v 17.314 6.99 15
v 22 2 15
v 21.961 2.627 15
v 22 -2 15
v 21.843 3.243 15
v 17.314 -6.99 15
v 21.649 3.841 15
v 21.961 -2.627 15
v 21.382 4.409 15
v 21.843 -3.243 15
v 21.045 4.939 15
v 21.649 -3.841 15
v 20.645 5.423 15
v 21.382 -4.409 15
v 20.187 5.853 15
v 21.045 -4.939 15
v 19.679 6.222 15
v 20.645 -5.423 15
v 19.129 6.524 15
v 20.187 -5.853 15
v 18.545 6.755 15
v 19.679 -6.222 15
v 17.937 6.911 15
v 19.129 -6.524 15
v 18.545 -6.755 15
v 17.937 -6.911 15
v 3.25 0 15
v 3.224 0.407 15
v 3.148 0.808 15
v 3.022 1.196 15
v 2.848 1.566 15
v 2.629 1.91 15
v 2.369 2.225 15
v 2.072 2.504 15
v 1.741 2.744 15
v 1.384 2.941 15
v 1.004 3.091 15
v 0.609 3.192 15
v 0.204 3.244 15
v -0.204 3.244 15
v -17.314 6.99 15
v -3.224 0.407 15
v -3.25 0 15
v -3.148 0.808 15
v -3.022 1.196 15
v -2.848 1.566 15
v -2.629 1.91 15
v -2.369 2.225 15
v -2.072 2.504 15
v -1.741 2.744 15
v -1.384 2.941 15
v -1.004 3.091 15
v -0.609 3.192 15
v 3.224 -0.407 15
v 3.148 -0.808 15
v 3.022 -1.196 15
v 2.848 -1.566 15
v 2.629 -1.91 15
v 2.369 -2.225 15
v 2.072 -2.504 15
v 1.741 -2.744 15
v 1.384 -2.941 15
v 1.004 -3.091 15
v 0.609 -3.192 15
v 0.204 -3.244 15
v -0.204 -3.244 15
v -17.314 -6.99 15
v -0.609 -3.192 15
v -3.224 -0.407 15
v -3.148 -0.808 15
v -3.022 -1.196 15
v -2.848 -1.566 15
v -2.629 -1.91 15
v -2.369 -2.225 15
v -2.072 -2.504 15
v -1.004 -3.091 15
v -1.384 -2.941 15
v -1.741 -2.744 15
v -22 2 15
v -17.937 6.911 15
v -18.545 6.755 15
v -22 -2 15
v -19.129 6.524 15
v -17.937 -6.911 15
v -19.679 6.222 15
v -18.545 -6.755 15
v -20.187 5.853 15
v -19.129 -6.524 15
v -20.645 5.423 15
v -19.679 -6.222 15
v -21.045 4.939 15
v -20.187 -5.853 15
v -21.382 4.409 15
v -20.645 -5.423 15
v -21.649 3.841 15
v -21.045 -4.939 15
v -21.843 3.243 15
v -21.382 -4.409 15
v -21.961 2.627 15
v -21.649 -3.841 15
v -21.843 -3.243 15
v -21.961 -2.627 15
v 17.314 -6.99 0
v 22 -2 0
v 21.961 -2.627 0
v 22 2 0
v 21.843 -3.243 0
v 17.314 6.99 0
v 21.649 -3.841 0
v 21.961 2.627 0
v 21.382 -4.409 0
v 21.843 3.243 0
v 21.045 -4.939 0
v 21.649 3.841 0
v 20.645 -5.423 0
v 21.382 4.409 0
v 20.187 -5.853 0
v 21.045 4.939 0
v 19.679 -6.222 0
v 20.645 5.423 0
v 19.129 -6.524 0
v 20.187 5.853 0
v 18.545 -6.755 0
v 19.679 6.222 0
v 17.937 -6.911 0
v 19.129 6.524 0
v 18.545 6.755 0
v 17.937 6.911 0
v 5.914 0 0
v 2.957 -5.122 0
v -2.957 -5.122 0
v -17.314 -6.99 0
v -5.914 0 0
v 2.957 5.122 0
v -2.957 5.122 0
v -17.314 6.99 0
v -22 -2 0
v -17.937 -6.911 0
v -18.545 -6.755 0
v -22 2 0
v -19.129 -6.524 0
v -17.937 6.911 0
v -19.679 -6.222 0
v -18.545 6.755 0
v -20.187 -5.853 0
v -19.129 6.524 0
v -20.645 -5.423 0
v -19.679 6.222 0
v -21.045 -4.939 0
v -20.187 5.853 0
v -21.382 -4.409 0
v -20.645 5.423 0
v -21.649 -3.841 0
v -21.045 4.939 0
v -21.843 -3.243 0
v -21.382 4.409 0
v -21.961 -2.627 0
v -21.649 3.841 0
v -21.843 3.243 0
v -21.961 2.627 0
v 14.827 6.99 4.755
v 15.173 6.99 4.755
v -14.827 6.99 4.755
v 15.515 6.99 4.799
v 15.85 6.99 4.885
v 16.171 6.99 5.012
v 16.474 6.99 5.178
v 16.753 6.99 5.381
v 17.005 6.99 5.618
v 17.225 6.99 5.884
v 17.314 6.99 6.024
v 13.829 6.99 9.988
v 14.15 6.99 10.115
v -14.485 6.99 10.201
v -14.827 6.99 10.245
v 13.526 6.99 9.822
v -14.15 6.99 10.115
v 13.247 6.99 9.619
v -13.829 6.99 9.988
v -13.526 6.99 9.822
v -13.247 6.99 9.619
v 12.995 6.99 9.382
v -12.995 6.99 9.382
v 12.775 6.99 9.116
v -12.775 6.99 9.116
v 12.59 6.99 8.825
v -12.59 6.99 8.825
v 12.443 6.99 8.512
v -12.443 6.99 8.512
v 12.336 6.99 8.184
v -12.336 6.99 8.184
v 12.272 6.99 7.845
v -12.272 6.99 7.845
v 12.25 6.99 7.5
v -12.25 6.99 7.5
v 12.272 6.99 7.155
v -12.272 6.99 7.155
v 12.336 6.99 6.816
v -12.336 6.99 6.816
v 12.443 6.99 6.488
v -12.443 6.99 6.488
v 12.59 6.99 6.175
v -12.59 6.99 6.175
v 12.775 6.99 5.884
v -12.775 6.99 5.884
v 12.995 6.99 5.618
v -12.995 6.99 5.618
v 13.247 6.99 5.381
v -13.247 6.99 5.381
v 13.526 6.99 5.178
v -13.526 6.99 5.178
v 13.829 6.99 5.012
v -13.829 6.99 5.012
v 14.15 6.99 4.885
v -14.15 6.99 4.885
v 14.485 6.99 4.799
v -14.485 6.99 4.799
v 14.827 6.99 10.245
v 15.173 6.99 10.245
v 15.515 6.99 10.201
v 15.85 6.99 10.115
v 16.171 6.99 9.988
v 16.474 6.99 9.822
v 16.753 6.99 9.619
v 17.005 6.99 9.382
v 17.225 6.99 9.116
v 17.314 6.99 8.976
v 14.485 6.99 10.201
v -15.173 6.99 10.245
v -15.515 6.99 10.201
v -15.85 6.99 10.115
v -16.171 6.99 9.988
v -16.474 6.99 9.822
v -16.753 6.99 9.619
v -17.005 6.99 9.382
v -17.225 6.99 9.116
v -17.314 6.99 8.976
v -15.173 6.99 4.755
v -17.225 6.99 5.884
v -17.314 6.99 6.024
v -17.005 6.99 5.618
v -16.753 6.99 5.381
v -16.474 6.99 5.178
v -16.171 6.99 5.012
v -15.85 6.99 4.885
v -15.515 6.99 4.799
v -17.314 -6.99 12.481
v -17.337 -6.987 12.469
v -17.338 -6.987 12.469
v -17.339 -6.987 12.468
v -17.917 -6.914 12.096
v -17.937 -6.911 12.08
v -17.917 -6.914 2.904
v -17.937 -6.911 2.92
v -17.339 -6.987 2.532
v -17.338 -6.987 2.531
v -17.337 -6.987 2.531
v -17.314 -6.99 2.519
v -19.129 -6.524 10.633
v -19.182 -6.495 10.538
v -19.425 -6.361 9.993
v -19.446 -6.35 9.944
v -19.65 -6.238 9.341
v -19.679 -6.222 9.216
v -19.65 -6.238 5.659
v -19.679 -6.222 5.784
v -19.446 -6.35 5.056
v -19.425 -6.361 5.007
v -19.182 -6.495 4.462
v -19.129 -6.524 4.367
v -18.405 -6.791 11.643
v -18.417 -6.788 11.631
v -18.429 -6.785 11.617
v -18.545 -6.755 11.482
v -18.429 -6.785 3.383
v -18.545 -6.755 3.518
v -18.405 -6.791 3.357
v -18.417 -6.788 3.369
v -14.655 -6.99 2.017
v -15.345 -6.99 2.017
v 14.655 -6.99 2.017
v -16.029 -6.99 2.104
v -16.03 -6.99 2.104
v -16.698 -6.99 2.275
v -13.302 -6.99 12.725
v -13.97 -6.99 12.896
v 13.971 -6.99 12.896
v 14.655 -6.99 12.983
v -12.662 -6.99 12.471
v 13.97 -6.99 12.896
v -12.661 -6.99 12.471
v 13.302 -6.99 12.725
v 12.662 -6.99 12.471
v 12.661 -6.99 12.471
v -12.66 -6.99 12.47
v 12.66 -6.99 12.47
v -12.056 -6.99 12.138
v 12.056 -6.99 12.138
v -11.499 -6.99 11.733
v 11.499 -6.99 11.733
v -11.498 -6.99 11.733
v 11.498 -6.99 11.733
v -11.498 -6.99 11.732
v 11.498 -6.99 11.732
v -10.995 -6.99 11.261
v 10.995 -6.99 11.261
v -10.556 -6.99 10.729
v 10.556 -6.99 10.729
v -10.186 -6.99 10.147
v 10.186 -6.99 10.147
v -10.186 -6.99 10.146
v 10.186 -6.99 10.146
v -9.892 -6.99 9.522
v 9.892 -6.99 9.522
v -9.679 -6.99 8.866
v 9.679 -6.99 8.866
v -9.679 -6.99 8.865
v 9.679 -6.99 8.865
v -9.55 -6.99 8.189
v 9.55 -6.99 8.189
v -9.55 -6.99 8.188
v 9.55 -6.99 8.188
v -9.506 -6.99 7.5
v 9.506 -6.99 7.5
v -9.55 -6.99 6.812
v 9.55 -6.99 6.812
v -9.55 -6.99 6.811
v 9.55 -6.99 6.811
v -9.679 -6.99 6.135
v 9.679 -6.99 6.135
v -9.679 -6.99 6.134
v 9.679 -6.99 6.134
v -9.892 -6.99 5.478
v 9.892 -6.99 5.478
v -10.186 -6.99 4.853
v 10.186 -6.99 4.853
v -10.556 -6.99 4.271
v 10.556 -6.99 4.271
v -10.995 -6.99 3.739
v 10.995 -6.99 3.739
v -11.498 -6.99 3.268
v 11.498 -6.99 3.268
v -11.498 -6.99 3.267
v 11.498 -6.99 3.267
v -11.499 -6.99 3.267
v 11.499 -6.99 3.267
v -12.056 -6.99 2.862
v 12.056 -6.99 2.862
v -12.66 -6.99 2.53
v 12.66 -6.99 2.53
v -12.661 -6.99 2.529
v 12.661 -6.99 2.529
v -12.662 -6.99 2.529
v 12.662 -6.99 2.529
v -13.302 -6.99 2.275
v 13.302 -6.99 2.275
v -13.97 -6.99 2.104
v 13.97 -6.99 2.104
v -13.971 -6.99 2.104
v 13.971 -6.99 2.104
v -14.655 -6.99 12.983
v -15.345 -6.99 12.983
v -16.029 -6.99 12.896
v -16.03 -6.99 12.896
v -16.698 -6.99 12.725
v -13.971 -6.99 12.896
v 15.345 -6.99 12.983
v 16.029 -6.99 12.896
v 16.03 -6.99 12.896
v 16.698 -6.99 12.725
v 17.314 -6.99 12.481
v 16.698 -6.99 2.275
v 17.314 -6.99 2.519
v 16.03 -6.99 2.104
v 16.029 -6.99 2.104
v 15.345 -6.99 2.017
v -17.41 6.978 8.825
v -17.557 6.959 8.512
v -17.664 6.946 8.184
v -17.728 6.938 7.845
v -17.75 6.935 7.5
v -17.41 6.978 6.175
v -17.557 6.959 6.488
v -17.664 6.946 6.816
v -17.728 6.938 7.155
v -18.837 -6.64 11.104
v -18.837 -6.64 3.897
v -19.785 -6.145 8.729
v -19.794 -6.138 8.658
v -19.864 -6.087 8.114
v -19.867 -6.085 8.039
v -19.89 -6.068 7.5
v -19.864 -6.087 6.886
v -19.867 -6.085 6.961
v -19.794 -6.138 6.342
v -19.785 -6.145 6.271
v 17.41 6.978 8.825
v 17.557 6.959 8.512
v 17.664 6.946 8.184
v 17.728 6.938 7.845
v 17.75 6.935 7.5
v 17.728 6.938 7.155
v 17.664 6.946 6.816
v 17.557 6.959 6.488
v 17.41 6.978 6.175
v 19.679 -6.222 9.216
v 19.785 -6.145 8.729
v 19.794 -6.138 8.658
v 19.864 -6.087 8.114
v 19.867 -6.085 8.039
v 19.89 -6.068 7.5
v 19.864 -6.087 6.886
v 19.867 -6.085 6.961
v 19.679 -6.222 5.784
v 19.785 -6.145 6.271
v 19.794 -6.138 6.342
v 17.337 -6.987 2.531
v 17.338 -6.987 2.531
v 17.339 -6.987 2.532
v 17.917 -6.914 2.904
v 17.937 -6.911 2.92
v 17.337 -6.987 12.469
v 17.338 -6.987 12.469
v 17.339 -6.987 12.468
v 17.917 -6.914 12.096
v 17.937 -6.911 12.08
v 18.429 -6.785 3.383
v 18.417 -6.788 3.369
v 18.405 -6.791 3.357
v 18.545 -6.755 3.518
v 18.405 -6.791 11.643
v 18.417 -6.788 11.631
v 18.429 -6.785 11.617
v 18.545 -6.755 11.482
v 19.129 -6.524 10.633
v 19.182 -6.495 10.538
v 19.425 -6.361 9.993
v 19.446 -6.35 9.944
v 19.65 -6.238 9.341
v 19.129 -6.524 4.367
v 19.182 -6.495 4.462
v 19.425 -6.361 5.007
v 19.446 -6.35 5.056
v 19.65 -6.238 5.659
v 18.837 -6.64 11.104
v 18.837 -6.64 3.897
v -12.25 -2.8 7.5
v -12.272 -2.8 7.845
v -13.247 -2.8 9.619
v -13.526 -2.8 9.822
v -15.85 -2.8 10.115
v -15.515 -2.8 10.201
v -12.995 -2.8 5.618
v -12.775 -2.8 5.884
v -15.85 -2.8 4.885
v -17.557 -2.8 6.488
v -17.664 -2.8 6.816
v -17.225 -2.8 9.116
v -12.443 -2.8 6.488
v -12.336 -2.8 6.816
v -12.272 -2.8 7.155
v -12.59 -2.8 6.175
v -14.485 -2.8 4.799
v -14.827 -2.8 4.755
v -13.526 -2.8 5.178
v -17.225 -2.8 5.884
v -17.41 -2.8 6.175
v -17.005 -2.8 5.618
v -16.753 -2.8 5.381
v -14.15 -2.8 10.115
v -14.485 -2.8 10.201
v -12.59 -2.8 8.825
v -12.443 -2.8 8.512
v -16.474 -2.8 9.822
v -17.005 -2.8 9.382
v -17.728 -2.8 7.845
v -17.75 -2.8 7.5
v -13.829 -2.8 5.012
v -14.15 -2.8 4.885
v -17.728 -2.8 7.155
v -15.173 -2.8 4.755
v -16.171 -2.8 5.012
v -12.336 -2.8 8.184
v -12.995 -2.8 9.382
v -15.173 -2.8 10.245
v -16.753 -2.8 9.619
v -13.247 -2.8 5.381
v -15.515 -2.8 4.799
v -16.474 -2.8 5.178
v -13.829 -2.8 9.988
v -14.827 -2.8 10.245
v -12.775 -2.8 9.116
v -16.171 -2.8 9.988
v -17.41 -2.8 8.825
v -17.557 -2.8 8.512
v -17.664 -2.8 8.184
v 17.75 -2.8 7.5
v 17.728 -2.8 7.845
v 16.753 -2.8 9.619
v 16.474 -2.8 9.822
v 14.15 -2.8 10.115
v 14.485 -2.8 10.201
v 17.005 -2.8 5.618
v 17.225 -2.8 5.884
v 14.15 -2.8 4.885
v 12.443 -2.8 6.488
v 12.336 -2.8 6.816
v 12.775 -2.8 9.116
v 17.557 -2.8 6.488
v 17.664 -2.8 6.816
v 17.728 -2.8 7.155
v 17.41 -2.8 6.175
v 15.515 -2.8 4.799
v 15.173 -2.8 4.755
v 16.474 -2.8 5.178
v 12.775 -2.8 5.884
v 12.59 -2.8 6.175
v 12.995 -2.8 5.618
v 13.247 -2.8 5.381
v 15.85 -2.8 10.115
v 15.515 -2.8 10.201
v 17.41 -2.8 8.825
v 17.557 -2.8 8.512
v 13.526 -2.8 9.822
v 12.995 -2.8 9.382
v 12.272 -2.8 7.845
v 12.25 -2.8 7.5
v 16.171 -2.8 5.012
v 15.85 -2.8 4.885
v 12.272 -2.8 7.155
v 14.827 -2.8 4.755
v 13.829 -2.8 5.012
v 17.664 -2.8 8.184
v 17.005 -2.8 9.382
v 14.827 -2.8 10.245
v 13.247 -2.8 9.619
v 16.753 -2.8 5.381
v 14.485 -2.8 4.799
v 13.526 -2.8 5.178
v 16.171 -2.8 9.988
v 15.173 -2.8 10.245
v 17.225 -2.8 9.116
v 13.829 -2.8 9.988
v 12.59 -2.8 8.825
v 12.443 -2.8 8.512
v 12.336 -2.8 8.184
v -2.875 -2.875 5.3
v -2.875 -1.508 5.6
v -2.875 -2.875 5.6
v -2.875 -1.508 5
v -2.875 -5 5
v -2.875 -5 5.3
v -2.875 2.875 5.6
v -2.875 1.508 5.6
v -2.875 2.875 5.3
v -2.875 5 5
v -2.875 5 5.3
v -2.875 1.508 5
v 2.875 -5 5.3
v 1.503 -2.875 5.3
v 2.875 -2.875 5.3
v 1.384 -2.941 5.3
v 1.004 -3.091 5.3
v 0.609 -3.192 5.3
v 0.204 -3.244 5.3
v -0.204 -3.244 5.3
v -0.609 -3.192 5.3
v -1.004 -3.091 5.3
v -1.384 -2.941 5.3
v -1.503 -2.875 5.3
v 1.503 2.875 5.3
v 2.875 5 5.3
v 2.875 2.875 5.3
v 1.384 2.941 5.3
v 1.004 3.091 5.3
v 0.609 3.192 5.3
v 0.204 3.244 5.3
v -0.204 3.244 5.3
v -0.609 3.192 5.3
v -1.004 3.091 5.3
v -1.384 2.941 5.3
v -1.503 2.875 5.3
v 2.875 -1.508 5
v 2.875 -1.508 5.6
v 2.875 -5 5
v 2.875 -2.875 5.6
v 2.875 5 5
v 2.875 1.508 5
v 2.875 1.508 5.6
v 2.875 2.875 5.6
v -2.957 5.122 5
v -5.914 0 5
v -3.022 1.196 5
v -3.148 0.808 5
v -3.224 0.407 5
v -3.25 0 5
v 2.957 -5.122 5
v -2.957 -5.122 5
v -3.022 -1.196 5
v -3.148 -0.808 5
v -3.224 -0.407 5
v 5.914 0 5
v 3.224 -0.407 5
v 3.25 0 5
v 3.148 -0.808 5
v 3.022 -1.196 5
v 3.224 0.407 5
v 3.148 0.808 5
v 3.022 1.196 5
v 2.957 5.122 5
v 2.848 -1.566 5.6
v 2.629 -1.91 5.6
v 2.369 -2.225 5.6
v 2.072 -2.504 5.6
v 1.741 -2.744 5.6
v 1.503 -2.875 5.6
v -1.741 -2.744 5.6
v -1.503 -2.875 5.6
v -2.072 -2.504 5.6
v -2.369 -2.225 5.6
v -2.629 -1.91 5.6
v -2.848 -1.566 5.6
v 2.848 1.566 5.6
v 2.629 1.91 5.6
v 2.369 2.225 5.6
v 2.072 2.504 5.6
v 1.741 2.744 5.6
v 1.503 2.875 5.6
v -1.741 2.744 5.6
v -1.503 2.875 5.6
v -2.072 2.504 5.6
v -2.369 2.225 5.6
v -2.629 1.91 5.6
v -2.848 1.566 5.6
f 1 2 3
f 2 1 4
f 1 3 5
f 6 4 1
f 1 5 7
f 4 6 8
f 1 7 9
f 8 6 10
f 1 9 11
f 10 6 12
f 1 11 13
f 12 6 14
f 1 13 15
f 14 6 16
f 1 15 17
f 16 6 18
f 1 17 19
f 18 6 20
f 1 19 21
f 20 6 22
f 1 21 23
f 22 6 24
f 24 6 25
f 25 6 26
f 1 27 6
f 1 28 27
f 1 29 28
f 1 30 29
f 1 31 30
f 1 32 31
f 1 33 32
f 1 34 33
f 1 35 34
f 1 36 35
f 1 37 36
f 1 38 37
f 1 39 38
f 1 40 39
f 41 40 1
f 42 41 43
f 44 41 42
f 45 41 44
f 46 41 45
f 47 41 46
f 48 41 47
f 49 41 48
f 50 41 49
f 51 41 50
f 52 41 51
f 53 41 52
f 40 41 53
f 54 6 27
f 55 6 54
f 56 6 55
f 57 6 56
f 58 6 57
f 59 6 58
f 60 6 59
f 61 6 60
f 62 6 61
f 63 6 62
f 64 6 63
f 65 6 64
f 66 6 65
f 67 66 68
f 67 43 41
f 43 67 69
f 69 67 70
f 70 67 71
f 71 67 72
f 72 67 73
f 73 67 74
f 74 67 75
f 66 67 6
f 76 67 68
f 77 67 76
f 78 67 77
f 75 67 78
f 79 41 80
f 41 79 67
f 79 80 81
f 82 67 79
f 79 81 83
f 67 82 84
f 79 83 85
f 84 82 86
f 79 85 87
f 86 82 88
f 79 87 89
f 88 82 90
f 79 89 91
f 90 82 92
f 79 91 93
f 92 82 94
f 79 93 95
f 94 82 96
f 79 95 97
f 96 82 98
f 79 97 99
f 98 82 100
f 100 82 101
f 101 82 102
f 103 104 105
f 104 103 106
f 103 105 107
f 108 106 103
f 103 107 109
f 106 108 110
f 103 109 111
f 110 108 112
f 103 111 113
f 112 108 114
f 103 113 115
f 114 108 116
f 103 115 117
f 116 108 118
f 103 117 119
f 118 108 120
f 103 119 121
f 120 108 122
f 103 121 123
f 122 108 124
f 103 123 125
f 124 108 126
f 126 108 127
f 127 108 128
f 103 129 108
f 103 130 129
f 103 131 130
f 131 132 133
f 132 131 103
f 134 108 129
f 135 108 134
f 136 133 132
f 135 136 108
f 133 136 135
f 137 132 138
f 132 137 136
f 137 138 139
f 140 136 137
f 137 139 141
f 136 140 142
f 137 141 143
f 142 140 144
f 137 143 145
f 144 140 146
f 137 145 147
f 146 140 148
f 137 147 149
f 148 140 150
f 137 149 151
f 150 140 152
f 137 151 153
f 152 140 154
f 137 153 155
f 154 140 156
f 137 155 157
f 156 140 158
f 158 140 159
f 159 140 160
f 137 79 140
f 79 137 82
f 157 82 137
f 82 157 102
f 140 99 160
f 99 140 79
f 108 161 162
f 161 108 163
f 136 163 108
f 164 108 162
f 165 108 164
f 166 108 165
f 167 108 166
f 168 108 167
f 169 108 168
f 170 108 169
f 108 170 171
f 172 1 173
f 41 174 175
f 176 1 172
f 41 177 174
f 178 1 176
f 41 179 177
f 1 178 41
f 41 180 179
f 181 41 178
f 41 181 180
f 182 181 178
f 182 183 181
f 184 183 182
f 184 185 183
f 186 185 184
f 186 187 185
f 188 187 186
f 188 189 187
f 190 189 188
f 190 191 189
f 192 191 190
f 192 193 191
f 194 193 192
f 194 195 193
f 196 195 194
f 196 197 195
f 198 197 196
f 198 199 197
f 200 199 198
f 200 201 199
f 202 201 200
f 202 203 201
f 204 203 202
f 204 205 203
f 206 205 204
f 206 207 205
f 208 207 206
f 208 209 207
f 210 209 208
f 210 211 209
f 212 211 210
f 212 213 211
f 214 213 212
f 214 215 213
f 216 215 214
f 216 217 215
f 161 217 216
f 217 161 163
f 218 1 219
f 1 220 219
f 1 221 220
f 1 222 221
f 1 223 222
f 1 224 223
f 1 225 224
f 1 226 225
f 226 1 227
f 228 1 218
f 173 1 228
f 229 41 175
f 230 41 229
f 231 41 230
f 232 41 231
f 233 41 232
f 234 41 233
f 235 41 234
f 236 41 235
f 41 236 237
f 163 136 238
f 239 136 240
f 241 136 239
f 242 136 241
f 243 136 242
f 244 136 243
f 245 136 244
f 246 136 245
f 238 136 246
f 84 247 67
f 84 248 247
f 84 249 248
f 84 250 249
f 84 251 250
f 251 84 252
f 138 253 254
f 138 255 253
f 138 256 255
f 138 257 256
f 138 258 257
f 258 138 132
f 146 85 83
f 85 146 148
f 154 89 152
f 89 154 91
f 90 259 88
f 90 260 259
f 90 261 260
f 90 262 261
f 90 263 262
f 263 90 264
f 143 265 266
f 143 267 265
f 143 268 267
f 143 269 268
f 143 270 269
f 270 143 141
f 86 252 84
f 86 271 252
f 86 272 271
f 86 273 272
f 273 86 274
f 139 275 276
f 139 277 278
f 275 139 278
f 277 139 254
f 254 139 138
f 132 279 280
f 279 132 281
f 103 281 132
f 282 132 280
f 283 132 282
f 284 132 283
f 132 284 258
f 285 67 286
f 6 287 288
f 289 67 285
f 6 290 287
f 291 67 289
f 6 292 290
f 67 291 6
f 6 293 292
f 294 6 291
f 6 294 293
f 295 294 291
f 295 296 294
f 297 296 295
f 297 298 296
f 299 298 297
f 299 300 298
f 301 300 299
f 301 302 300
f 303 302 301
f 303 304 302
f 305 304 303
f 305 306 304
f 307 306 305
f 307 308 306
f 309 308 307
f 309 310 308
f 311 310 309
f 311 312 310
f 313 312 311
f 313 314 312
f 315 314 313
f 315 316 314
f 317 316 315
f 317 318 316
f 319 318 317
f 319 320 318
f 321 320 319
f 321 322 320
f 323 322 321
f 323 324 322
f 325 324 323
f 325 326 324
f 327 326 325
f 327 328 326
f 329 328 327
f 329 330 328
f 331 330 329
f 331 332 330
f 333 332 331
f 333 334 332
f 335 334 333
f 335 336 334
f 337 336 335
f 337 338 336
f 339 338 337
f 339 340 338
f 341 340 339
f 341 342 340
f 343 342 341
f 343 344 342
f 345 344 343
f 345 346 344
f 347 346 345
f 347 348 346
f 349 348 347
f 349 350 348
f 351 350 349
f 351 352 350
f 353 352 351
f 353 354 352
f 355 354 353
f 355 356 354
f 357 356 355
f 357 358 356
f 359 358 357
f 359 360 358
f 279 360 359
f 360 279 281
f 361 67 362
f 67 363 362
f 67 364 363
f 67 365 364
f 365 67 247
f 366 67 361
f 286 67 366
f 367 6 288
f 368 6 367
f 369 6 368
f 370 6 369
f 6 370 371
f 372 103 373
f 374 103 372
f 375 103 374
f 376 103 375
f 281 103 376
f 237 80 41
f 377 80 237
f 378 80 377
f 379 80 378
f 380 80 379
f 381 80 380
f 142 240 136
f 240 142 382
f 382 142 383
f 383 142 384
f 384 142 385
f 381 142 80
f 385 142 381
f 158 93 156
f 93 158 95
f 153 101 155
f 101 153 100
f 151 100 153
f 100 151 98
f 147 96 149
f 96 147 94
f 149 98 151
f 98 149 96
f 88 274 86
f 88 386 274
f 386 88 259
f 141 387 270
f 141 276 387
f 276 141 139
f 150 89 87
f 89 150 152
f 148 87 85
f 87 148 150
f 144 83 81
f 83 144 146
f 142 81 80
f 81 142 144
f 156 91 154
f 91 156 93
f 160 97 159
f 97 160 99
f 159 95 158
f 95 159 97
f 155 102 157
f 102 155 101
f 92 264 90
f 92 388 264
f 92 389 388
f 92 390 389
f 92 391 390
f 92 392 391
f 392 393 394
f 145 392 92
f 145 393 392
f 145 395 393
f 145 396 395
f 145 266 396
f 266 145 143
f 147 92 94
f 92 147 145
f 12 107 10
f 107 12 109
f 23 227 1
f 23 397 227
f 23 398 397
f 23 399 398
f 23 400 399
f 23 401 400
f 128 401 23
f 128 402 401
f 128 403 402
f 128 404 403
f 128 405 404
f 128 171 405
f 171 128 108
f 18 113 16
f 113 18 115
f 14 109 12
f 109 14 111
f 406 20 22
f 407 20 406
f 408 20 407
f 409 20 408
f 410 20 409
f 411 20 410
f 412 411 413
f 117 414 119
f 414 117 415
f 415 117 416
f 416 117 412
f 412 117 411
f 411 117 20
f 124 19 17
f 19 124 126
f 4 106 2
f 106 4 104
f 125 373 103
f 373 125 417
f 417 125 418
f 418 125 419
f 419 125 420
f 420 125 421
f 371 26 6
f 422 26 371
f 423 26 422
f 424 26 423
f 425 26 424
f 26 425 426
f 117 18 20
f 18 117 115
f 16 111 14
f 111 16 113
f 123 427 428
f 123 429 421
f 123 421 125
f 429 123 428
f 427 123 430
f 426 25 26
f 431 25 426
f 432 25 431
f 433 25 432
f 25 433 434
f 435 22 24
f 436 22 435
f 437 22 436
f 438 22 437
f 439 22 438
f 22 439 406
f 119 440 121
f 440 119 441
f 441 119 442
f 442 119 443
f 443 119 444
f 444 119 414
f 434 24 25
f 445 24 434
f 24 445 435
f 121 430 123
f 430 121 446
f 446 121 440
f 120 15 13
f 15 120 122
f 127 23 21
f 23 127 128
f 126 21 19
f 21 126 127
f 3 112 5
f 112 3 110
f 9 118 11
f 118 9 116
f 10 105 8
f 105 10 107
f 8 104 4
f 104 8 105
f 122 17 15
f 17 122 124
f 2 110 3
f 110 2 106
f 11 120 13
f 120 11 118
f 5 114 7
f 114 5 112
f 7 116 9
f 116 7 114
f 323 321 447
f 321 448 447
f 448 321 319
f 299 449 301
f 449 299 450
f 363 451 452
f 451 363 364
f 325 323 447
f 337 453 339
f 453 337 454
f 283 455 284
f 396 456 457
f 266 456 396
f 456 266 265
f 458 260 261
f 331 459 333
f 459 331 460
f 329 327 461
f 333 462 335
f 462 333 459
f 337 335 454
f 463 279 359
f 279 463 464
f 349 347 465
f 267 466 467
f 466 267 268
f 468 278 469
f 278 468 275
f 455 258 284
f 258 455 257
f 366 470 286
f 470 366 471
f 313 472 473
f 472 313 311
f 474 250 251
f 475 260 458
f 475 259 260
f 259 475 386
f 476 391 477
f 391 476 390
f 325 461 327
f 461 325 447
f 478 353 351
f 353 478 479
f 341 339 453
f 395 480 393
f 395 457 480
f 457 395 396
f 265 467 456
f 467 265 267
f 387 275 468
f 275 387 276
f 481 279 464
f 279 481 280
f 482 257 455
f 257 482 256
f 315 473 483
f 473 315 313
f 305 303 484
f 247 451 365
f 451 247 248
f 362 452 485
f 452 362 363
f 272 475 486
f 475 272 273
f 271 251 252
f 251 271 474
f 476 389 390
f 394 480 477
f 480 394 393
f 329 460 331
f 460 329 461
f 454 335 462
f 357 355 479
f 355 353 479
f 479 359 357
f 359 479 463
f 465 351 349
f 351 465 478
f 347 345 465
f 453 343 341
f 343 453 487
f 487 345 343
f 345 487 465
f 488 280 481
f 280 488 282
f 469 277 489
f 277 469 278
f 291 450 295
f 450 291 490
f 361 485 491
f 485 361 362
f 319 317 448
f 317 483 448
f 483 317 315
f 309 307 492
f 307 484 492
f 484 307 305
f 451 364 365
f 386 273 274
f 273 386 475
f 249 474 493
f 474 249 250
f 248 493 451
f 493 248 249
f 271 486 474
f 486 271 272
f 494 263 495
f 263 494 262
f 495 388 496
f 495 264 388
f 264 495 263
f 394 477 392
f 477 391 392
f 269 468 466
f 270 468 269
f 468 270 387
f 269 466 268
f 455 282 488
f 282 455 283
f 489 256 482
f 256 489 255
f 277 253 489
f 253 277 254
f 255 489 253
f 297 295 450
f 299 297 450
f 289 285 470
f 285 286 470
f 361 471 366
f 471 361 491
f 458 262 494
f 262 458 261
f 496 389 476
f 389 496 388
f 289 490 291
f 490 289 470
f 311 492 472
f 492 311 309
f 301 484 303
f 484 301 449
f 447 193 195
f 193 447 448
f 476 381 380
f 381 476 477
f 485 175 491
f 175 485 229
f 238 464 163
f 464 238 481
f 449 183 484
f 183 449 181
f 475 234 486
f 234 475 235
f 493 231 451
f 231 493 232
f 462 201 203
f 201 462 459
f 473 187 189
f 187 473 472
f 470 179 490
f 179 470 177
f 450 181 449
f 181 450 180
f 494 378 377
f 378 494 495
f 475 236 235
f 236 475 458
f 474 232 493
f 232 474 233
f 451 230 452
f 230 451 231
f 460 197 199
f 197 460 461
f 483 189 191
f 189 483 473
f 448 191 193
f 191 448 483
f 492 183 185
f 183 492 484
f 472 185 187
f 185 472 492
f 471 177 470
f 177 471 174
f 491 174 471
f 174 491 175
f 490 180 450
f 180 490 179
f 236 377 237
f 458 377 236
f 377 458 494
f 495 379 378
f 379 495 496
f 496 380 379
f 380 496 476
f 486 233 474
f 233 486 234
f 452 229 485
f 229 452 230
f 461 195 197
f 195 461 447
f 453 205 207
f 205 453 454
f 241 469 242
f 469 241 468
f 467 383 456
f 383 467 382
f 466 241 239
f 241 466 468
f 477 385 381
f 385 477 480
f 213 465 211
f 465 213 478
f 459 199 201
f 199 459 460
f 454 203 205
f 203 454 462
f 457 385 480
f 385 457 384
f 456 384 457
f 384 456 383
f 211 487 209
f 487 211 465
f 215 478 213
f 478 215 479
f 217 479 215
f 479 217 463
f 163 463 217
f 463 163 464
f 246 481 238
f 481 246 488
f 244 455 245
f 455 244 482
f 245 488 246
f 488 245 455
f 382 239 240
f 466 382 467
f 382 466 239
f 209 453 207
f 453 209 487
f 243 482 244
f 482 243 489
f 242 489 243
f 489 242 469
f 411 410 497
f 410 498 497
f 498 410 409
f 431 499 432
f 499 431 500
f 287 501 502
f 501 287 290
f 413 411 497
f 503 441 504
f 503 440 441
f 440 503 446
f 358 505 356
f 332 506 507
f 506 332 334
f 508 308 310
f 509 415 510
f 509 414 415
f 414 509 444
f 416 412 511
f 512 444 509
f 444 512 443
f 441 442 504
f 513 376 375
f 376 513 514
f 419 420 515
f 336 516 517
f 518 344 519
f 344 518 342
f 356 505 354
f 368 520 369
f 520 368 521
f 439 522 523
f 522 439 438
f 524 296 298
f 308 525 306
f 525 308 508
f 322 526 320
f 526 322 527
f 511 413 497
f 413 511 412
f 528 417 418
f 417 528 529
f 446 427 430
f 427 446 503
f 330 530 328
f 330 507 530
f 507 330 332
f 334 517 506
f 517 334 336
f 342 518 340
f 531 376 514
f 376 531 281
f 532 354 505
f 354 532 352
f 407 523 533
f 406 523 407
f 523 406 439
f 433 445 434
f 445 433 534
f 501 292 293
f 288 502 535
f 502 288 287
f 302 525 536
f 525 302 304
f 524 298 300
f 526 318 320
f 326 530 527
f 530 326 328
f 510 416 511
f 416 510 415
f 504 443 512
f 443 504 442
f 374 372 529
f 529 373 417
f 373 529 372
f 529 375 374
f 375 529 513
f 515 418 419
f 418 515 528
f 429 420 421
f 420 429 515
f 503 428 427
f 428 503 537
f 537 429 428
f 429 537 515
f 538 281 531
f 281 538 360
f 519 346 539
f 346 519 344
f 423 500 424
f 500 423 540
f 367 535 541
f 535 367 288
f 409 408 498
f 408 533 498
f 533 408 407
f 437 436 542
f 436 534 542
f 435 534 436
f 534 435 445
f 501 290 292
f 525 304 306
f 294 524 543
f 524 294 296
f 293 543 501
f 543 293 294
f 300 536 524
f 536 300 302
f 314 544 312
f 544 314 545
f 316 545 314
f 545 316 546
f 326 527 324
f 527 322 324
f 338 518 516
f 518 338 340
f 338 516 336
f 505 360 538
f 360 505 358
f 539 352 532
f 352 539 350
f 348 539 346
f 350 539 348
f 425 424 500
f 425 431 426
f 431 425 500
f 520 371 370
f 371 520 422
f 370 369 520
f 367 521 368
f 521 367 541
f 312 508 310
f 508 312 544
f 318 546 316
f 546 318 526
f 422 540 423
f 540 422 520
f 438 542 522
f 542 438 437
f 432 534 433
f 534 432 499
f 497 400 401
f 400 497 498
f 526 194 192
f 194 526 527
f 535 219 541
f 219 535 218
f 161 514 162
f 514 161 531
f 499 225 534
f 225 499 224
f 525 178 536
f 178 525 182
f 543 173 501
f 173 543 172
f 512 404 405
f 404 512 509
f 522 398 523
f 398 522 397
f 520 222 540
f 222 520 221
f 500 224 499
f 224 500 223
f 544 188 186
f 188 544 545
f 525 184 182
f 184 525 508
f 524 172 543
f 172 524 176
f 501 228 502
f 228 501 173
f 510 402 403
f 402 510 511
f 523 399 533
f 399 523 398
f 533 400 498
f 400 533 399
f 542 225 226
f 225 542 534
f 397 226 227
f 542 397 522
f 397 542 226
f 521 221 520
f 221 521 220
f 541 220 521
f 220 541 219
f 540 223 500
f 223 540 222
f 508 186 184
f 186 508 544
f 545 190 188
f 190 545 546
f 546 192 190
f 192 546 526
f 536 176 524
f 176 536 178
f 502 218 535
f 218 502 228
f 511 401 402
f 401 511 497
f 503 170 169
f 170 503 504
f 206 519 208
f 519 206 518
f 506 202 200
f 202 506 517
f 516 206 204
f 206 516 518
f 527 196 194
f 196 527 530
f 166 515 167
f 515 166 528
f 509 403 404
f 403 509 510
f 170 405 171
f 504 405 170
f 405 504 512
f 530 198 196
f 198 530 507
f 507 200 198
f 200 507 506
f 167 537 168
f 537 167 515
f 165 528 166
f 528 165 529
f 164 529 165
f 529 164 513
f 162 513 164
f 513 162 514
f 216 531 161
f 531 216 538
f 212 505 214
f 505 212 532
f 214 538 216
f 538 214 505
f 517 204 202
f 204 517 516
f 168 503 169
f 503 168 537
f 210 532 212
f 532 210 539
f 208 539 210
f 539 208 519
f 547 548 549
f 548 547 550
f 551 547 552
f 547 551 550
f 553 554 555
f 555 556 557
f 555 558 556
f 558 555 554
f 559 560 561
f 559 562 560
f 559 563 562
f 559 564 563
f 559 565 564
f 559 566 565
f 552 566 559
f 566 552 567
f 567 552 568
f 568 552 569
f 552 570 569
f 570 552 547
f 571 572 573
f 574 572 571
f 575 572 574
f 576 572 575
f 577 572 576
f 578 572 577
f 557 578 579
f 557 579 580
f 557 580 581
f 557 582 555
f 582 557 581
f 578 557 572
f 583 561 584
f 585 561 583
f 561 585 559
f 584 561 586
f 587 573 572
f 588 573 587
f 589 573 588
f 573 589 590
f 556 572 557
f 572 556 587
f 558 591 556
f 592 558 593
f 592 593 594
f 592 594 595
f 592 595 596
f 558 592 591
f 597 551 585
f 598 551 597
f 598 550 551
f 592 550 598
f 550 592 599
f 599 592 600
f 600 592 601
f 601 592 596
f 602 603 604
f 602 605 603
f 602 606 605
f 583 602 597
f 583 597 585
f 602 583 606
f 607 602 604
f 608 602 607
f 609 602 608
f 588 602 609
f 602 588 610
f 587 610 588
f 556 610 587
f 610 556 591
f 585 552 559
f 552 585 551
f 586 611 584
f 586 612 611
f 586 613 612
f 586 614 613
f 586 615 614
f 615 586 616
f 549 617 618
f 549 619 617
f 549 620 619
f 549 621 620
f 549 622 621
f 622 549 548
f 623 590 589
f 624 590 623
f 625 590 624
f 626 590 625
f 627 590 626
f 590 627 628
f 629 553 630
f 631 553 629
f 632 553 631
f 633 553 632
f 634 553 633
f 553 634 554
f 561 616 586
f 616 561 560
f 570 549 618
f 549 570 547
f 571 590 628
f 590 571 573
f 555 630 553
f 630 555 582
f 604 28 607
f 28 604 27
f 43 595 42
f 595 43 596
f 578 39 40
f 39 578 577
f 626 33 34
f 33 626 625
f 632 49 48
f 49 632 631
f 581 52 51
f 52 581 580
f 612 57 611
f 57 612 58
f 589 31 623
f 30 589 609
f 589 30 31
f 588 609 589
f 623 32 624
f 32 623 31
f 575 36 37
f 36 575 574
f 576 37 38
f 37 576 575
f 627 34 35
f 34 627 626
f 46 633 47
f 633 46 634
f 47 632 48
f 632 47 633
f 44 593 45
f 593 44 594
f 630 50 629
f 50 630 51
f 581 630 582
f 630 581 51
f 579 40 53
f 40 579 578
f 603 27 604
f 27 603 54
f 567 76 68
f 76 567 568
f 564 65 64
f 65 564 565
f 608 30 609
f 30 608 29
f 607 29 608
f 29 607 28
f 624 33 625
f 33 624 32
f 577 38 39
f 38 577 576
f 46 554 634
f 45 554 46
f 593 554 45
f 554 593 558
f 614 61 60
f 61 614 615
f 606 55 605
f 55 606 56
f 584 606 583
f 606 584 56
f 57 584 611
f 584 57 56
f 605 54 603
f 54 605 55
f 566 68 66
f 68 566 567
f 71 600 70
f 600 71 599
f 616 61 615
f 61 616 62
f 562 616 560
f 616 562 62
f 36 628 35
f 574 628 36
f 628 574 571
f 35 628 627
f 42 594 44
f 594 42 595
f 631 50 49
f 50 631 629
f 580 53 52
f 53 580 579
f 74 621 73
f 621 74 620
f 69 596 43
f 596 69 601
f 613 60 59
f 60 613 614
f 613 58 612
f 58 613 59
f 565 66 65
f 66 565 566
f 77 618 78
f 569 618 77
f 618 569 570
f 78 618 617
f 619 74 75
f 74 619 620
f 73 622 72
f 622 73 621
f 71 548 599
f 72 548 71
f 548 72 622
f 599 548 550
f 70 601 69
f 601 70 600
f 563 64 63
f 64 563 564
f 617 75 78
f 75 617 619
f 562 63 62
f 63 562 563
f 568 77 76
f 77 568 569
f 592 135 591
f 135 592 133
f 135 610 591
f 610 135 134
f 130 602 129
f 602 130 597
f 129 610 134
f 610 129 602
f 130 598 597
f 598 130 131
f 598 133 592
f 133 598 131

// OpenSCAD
$fn = 50;


difference() {
	union() {
		cylinder(h = 15, r = 7.0000000000);
		translate(v = [-7.5000000000, 0.0000000000, 0]) {
			hull() {
				translate(v = [-9.5000000000, 2.0000000000, 0]) {
					cylinder(h = 15, r = 5);
				}
				translate(v = [9.5000000000, 2.0000000000, 0]) {
					cylinder(h = 15, r = 5);
				}
				translate(v = [-9.5000000000, -2.0000000000, 0]) {
					cylinder(h = 15, r = 5);
				}
				translate(v = [9.5000000000, -2.0000000000, 0]) {
					cylinder(h = 15, r = 5);
				}
			}
		}
		translate(v = [-7.5000000000, 0.0000000000, 0]) {
			hull() {
				translate(v = [-9.5000000000, 2.0000000000, 0]) {
					cylinder(h = 15, r = 5);
				}
				translate(v = [9.5000000000, 2.0000000000, 0]) {
					cylinder(h = 15, r = 5);
				}
				translate(v = [-9.5000000000, -2.0000000000, 0]) {
					cylinder(h = 15, r = 5);
				}
				translate(v = [9.5000000000, -2.0000000000, 0]) {
					cylinder(h = 15, r = 5);
				}
			}
		}
		translate(v = [7.5000000000, 0.0000000000, 0]) {
			hull() {
				translate(v = [-9.5000000000, 2.0000000000, 0]) {
					cylinder(h = 15, r = 5);
				}
				translate(v = [9.5000000000, 2.0000000000, 0]) {
					cylinder(h = 15, r = 5);
				}
				translate(v = [-9.5000000000, -2.0000000000, 0]) {
					cylinder(h = 15, r = 5);
				}
				translate(v = [9.5000000000, -2.0000000000, 0]) {
					cylinder(h = 15, r = 5);
				}
			}
		}
		translate(v = [7.5000000000, 0.0000000000, 0]) {
			hull() {
				translate(v = [-9.5000000000, 2.0000000000, 0]) {
					cylinder(h = 15, r = 5);
				}
				translate(v = [9.5000000000, 2.0000000000, 0]) {
					cylinder(h = 15, r = 5);
				}
				translate(v = [-9.5000000000, -2.0000000000, 0]) {
					cylinder(h = 15, r = 5);
				}
				translate(v = [9.5000000000, -2.0000000000, 0]) {
					cylinder(h = 15, r = 5);
				}
			}
		}
	}
	union() {
		translate(v = [-15.0000000000, -7.0000000000, 7.5000000000]) {
			rotate(a = [90, 0, 0]) {
				difference() {
					union() {
						#translate(v = [0, 0, -14.0000000000]) {
							cylinder(h = 14, r = 2.2500000000);
						}
						#translate(v = [0, 0, -4.2000000000]) {
							cylinder(h = 4.2000000000, r1 = 2.7500000000, r2 = 5.5000000000);
						}
						#translate(v = [0, 0, -14.0000000000]) {
							cylinder(h = 14, r = 2.7500000000);
						}
						#translate(v = [0, 0, -14.0000000000]) {
							cylinder(h = 14, r = 2.2500000000);
						}
					}
					union();
				}
			}
		}
		translate(v = [15.0000000000, -7.0000000000, 7.5000000000]) {
			rotate(a = [90, 0, 0]) {
				difference() {
					union() {
						#translate(v = [0, 0, -14.0000000000]) {
							cylinder(h = 14, r = 2.2500000000);
						}
						#translate(v = [0, 0, -4.2000000000]) {
							cylinder(h = 4.2000000000, r1 = 2.7500000000, r2 = 5.5000000000);
						}
						#translate(v = [0, 0, -14.0000000000]) {
							cylinder(h = 14, r = 2.7500000000);
						}
						#translate(v = [0, 0, -14.0000000000]) {
							cylinder(h = 14, r = 2.2500000000);
						}
					}
					union();
				}
			}
		}
		translate(v = [0.0000000000, 0.0000000000, 0]) {
			rotate(a = [0, 0, 0]) {
				difference() {
					union() {
						#translate(v = [-2.8750000000, -5.0000000000, -0.3000000000]) {
							cube(size = [5.7500000000, 10, 0.3000000000]);
						}
						#translate(v = [-2.8750000000, -2.8750000000, -0.6000000000]) {
							cube(size = [5.7500000000, 5.7500000000, 0.3000000000]);
						}
						#translate(v = [-2.8750000000, -5.0000000000, 5]) {
							cube(size = [5.7500000000, 10, 0.3000000000]);
						}
						#translate(v = [-2.8750000000, -2.8750000000, 5.3000000000]) {
							cube(size = [5.7500000000, 5.7500000000, 0.3000000000]);
						}
						#translate(v = [0, 0, -100.0000000000]) {
							cylinder(h = 200, r = 3.2500000000);
						}
						#linear_extrude(height = 5) {
							polygon(points = [[5.9142500000, 0.0000000000], [2.9571250000, 5.1218907443], [-2.9571250000, 5.1218907443], [-5.9142500000, 0.0000000000], [-2.9571250000, -5.1218907443], [2.9571250000, -5.1218907443]]);
						}
						#translate(v = [-2.8750000000, -5.0000000000, -0.3000000000]) {
							cube(size = [5.7500000000, 10, 0.3000000000]);
						}
						#translate(v = [-2.8750000000, -2.8750000000, -0.6000000000]) {
							cube(size = [5.7500000000, 5.7500000000, 0.3000000000]);
						}
						#translate(v = [-2.8750000000, -5.0000000000, 5]) {
							cube(size = [5.7500000000, 10, 0.3000000000]);
						}
						#translate(v = [-2.8750000000, -2.8750000000, 5.3000000000]) {
							cube(size = [5.7500000000, 5.7500000000, 0.3000000000]);
						}
						#translate(v = [0, 0, -100.0000000000]) {
							cylinder(h = 200, r = 3.2500000000);
						}
						#translate(v = [-2.8750000000, -5.0000000000, -0.3000000000]) {
							cube(size = [5.7500000000, 10, 0.3000000000]);
						}
						#translate(v = [-2.8750000000, -2.8750000000, -0.6000000000]) {
							cube(size = [5.7500000000, 5.7500000000, 0.3000000000]);
						}
						#translate(v = [-2.8750000000, -5.0000000000, 5]) {
							cube(size = [5.7500000000, 10, 0.3000000000]);
						}
						#translate(v = [-2.8750000000, -2.8750000000, 5.3000000000]) {
							cube(size = [5.7500000000, 5.7500000000, 0.3000000000]);
						}
						#translate(v = [0, 0, -100.0000000000]) {
							cylinder(h = 200, r = 3.2500000000);
						}
					}
					union();
				}
			}
		}
		translate(v = [0, 0, -100]) {
			cylinder(h = 200, r = 3.2500000000);
		}
		translate(v = [0, 0, -100]) {
			cylinder(h = 200, r = 1.8000000000);
		}
	}
}
